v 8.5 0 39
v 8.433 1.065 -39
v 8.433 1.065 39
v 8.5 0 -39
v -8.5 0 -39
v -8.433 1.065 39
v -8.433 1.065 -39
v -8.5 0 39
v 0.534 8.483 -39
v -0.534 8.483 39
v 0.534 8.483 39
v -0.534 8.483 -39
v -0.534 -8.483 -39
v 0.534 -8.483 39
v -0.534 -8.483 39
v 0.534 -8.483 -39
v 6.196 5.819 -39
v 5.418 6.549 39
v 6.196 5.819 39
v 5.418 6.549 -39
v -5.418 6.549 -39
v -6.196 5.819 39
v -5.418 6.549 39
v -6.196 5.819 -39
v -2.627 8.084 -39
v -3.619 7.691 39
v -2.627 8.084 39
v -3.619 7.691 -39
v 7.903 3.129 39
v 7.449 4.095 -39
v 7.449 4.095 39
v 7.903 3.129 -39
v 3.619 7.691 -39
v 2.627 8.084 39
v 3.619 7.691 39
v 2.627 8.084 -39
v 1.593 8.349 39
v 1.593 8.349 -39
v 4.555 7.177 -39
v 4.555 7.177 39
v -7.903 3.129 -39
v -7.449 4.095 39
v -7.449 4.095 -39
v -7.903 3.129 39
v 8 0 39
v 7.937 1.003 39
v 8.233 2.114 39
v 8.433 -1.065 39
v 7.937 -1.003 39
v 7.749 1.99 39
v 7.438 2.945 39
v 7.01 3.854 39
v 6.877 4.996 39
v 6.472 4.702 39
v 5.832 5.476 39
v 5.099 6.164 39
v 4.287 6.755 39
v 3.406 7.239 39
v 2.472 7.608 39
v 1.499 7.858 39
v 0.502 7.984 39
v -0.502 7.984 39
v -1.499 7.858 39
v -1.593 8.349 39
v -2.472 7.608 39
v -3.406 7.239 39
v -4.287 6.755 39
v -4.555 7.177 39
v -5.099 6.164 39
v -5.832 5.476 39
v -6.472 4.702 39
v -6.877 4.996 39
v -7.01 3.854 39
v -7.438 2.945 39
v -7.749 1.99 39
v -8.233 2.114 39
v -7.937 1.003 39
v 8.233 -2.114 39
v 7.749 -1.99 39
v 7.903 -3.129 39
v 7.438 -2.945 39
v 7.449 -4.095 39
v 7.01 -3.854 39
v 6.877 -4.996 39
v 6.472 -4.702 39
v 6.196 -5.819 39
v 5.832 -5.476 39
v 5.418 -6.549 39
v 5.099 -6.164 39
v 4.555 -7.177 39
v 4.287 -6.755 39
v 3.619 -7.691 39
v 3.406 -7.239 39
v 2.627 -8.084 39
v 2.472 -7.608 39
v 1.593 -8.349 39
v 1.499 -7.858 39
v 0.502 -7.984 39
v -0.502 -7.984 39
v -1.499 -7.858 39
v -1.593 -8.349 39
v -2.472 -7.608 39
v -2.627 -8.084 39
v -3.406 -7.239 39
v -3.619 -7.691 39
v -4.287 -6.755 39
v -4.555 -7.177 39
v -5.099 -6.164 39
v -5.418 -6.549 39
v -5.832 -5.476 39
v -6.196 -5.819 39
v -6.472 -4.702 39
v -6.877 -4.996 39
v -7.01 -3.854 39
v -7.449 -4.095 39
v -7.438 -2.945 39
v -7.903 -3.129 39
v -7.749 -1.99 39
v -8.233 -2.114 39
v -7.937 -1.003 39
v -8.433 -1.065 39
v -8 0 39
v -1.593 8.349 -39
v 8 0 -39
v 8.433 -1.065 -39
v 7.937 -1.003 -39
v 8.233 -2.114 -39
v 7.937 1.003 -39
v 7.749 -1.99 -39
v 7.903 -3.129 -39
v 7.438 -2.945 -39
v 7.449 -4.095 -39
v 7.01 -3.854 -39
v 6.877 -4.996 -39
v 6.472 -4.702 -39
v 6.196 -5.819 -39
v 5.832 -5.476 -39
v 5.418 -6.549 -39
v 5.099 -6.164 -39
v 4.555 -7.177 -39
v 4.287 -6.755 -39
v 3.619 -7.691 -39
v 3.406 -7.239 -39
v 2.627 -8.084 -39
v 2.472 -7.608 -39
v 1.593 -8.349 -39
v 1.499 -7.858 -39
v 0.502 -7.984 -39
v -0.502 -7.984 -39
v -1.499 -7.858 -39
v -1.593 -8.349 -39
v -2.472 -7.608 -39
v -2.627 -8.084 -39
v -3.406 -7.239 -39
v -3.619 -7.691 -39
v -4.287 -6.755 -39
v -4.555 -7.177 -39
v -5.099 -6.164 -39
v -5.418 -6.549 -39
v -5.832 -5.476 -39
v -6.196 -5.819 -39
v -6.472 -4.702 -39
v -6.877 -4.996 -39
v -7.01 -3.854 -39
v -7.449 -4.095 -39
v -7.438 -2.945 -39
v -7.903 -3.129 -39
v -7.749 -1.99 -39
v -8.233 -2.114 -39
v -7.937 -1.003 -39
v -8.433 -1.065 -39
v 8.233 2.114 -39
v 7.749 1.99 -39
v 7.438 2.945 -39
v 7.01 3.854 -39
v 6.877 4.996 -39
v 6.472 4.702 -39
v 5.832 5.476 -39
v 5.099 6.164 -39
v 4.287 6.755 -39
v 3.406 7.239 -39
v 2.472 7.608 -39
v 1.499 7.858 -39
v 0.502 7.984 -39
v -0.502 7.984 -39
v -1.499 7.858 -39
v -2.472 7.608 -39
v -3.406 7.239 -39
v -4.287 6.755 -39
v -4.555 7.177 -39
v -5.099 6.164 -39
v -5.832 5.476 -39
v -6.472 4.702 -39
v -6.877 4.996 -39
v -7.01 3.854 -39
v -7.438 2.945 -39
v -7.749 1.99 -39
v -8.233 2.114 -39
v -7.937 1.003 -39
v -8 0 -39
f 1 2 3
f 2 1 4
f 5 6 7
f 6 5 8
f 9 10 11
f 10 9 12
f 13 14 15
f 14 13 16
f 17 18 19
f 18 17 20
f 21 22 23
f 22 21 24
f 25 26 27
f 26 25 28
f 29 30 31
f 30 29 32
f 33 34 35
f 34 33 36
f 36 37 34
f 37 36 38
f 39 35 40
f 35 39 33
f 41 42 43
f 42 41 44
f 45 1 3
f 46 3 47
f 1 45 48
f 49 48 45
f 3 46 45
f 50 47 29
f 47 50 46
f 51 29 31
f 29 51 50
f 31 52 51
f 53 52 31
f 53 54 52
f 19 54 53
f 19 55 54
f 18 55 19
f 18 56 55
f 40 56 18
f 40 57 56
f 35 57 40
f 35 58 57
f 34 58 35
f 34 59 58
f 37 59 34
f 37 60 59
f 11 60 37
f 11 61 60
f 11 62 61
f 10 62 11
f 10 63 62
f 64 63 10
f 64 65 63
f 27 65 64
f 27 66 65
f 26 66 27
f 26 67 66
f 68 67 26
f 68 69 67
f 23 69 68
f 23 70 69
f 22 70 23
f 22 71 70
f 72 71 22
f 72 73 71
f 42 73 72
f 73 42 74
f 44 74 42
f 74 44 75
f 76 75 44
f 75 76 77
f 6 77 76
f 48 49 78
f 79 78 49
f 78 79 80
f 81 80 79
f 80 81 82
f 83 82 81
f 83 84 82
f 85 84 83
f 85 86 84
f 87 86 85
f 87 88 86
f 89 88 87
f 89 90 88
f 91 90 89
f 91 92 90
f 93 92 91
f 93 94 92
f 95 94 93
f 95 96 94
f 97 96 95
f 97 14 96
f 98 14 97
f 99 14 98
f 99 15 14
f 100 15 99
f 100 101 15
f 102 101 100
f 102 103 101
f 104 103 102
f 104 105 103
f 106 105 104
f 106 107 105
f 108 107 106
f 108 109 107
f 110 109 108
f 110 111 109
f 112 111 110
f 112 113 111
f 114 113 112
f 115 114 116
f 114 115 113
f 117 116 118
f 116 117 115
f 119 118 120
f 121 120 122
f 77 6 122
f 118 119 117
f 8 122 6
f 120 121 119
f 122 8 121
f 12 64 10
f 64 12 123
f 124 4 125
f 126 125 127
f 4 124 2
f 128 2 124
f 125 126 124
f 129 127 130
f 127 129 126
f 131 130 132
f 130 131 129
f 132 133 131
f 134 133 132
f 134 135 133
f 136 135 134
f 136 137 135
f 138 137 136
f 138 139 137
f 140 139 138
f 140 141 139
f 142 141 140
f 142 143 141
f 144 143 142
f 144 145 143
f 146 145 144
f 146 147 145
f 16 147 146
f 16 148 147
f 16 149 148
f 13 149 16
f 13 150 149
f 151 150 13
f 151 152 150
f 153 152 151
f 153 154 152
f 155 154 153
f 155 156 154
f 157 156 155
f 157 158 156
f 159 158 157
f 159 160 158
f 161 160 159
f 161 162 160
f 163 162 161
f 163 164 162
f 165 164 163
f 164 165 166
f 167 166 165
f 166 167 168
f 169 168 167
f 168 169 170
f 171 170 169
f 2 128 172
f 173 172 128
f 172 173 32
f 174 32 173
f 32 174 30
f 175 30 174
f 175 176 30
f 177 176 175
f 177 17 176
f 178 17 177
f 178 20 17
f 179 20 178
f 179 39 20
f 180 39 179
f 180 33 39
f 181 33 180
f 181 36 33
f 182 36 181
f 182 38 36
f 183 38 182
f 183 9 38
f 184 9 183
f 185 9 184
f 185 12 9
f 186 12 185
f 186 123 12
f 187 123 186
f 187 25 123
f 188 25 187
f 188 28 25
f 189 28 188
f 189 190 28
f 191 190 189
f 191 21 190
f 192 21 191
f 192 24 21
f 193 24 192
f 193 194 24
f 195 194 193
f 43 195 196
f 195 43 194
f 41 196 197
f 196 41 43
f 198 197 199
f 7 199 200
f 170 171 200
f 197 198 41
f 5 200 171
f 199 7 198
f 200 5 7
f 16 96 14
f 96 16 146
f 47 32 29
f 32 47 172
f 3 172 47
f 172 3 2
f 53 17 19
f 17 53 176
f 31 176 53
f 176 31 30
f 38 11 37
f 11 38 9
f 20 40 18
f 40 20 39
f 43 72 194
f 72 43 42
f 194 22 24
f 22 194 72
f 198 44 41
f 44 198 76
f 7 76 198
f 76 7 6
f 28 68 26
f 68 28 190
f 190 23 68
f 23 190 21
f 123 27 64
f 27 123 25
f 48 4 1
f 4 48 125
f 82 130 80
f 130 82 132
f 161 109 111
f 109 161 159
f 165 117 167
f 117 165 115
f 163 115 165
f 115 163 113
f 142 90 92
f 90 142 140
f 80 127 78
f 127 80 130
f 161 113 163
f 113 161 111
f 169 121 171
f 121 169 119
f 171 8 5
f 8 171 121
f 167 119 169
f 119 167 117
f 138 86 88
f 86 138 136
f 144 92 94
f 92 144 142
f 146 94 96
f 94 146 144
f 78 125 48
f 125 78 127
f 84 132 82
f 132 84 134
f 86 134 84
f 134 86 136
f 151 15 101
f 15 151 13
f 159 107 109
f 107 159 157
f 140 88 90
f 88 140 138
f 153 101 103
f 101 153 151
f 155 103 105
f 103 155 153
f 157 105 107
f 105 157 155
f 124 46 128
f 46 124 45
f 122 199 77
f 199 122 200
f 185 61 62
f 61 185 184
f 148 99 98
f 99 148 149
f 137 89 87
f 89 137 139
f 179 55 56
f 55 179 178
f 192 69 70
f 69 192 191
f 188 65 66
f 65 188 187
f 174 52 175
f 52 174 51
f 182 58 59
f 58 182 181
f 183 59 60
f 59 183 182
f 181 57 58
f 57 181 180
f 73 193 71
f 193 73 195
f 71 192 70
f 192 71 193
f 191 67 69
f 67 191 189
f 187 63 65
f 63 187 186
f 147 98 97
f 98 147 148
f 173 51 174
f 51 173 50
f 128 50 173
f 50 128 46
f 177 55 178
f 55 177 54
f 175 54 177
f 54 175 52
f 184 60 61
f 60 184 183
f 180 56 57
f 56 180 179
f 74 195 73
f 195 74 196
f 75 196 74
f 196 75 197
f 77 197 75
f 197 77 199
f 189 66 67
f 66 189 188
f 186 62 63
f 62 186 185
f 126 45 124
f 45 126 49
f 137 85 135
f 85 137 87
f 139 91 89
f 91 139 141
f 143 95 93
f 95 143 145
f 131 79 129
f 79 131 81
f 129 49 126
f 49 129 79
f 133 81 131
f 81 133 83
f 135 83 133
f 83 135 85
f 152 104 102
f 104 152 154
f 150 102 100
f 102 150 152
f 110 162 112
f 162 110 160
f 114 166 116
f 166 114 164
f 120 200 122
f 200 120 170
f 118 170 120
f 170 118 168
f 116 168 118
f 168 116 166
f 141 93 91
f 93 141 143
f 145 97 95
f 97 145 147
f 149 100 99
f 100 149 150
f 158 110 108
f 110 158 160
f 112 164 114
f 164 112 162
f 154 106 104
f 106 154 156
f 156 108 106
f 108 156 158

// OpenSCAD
$fn = 50;


difference() {
	union() {
		translate(v = [0, 0, -39.0000000000]) {
			cylinder(h = 78, r = 8.5000000000);
		}
	}
	union() {
		translate(v = [0, 0, -100.0000000000]) {
			cylinder(h = 200, r = 8);
		}
	}
}
